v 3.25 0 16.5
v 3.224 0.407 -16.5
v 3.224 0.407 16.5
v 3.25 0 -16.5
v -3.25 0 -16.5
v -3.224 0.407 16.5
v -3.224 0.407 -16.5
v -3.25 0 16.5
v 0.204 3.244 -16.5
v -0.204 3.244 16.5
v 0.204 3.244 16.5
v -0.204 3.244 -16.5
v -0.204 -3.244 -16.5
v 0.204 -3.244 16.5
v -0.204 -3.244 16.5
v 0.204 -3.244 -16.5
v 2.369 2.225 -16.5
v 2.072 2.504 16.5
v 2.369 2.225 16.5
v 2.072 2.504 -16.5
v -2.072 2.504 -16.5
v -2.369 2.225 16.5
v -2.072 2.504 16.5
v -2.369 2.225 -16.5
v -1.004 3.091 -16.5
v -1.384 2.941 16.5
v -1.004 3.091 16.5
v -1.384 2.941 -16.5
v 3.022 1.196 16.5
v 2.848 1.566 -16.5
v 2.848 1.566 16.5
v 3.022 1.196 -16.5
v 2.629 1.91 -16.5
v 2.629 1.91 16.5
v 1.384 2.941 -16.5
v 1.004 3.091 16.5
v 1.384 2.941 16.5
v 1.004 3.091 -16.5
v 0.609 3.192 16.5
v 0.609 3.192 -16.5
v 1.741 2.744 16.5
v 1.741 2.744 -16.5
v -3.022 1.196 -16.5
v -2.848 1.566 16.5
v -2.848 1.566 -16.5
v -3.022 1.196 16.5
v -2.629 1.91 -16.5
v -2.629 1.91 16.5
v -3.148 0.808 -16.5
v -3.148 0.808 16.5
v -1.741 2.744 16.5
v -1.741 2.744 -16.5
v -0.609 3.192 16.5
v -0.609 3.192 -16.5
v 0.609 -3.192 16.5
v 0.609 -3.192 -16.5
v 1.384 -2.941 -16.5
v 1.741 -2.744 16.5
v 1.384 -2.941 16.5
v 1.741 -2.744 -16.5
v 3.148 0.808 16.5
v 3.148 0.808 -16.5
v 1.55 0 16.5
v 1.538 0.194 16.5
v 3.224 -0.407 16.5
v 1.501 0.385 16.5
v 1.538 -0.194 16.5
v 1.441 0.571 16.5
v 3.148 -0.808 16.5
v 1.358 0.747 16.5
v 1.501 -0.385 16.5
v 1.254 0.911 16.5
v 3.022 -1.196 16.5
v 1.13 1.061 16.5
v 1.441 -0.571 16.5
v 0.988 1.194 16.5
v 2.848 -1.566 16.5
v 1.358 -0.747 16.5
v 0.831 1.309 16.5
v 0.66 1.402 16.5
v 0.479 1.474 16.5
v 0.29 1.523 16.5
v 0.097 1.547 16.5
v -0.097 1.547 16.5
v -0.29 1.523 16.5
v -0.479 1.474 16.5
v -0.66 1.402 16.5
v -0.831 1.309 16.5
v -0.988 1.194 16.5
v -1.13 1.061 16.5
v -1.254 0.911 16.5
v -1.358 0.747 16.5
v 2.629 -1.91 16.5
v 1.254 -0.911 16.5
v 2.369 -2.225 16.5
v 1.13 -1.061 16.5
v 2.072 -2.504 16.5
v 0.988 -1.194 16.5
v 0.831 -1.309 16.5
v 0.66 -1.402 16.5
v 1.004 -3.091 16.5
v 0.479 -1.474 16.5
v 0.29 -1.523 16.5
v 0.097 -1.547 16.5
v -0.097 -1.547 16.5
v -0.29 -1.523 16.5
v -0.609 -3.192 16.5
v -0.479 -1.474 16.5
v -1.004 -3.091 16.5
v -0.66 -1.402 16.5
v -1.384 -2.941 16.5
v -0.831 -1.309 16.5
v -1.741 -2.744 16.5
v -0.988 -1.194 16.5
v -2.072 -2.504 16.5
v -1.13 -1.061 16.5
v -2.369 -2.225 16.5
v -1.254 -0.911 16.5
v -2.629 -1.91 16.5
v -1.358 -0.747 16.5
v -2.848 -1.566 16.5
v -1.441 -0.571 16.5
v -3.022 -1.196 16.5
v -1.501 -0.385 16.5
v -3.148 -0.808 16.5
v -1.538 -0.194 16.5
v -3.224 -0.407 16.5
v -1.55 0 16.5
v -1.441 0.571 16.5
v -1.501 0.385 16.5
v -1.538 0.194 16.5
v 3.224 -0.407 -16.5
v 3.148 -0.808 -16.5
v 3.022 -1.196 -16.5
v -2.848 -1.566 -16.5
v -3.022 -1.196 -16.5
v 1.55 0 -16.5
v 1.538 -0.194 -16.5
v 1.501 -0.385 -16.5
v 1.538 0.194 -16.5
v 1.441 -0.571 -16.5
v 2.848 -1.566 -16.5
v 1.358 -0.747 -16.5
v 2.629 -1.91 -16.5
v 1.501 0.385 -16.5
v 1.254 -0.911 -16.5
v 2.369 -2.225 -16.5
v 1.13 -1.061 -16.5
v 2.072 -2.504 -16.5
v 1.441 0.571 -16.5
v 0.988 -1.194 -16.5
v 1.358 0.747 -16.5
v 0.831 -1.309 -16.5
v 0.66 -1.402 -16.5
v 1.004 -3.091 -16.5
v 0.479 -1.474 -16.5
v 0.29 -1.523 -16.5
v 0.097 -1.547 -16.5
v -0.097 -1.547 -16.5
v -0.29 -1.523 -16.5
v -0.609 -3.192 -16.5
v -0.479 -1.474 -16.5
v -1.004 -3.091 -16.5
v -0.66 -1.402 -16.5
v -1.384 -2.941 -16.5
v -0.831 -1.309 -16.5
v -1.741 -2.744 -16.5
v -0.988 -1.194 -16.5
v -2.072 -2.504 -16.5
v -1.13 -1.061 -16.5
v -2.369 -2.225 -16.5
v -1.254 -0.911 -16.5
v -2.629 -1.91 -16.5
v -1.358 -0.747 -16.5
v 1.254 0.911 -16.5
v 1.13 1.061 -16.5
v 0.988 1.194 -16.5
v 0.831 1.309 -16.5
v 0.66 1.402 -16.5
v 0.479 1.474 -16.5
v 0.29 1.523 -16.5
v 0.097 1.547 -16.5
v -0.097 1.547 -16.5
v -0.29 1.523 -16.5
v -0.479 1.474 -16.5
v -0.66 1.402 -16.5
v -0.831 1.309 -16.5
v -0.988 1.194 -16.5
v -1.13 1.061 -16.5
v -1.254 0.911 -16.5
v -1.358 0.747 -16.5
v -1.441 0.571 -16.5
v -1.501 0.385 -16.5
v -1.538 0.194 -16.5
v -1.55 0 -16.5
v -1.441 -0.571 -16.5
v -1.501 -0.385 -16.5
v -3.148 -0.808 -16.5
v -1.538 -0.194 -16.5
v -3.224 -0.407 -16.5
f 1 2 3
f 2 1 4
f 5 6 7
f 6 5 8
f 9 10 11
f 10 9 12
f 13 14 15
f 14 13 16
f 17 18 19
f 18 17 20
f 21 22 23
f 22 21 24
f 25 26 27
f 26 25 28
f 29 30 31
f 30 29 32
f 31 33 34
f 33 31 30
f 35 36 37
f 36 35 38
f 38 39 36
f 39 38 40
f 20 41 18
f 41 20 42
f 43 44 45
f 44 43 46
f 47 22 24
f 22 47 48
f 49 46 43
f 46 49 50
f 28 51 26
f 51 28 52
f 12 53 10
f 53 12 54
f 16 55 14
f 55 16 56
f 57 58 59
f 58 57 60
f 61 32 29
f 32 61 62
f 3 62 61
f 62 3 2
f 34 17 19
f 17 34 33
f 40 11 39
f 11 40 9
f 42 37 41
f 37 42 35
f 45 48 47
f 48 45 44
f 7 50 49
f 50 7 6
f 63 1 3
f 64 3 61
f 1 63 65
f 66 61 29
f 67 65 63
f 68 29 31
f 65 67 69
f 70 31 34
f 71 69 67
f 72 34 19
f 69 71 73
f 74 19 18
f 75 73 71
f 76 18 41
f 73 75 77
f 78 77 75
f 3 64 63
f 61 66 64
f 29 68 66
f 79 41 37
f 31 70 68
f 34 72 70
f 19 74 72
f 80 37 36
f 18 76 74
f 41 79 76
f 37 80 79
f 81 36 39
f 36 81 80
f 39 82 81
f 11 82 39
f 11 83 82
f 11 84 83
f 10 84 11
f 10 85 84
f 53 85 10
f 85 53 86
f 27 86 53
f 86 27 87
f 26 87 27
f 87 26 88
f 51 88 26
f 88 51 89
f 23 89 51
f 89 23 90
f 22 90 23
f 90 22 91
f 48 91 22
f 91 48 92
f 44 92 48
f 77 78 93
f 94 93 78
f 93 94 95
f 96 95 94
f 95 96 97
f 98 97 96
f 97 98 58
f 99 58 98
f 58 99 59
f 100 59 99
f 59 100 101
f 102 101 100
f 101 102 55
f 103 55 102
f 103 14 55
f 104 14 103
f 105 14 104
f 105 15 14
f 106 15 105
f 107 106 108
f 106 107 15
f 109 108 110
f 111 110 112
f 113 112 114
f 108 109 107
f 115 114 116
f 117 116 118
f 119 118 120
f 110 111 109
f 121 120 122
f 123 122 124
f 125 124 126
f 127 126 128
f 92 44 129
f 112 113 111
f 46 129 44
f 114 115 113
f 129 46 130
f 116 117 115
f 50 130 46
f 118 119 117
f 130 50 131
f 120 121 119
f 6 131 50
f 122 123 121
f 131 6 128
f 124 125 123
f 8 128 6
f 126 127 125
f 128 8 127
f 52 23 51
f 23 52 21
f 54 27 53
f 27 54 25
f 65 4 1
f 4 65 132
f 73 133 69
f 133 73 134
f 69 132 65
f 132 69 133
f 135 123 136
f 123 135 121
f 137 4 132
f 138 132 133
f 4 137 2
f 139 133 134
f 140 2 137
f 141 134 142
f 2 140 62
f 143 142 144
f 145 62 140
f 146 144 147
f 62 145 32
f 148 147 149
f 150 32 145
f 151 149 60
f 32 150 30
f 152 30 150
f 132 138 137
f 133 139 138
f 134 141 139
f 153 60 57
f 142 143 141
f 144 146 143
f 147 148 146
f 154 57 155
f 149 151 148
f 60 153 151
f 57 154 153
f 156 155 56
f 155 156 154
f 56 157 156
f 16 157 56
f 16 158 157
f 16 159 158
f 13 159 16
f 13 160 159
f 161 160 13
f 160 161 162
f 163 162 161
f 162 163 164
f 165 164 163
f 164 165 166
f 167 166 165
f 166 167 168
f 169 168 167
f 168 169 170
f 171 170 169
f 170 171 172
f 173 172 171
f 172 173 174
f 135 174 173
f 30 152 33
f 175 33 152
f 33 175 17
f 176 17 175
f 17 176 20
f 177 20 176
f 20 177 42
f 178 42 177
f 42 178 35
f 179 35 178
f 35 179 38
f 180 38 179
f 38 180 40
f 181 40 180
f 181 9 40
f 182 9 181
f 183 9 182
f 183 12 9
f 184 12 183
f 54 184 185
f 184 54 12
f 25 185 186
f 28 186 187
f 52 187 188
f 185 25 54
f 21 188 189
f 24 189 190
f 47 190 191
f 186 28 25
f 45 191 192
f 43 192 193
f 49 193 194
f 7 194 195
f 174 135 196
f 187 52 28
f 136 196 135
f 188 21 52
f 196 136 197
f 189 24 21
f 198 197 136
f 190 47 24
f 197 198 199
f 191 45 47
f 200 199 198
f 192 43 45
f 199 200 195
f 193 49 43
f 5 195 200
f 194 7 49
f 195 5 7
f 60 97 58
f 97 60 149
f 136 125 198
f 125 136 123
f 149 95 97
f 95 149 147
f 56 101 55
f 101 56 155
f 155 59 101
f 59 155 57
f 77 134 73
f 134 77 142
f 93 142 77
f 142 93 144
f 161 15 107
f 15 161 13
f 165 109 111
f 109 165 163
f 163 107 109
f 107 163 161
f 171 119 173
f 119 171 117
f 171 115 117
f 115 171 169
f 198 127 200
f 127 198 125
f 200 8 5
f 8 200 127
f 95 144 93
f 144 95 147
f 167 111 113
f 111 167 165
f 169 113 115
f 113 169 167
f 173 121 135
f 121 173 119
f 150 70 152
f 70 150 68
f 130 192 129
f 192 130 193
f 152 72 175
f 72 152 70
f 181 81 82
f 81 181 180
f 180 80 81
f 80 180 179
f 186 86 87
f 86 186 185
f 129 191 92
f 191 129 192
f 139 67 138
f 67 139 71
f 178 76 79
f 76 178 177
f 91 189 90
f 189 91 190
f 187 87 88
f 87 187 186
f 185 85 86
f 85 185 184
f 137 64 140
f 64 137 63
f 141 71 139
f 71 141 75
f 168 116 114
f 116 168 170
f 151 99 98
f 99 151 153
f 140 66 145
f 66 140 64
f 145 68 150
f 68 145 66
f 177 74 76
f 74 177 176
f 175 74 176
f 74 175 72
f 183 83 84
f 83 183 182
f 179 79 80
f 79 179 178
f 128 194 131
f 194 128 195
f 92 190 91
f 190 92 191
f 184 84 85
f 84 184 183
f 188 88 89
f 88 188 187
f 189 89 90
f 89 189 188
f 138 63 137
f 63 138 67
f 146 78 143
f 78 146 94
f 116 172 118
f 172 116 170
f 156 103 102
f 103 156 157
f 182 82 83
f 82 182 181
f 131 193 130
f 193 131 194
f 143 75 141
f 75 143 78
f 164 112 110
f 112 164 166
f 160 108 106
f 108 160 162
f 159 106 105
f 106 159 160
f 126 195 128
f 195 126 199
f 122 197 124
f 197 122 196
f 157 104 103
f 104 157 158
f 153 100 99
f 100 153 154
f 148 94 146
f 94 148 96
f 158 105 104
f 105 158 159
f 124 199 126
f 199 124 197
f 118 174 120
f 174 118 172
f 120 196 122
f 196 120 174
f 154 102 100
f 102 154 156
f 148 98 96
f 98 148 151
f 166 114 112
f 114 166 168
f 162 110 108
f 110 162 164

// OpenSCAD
$fn = 50;


difference() {
	union() {
		translate(v = [0, 0, -16.5000000000]) {
			cylinder(h = 33, r = 3.2500000000);
		}
	}
	union() {
		translate(v = [0, 0, -100.0000000000]) {
			cylinder(h = 200, r = 1.5500000000);
		}
	}
}
